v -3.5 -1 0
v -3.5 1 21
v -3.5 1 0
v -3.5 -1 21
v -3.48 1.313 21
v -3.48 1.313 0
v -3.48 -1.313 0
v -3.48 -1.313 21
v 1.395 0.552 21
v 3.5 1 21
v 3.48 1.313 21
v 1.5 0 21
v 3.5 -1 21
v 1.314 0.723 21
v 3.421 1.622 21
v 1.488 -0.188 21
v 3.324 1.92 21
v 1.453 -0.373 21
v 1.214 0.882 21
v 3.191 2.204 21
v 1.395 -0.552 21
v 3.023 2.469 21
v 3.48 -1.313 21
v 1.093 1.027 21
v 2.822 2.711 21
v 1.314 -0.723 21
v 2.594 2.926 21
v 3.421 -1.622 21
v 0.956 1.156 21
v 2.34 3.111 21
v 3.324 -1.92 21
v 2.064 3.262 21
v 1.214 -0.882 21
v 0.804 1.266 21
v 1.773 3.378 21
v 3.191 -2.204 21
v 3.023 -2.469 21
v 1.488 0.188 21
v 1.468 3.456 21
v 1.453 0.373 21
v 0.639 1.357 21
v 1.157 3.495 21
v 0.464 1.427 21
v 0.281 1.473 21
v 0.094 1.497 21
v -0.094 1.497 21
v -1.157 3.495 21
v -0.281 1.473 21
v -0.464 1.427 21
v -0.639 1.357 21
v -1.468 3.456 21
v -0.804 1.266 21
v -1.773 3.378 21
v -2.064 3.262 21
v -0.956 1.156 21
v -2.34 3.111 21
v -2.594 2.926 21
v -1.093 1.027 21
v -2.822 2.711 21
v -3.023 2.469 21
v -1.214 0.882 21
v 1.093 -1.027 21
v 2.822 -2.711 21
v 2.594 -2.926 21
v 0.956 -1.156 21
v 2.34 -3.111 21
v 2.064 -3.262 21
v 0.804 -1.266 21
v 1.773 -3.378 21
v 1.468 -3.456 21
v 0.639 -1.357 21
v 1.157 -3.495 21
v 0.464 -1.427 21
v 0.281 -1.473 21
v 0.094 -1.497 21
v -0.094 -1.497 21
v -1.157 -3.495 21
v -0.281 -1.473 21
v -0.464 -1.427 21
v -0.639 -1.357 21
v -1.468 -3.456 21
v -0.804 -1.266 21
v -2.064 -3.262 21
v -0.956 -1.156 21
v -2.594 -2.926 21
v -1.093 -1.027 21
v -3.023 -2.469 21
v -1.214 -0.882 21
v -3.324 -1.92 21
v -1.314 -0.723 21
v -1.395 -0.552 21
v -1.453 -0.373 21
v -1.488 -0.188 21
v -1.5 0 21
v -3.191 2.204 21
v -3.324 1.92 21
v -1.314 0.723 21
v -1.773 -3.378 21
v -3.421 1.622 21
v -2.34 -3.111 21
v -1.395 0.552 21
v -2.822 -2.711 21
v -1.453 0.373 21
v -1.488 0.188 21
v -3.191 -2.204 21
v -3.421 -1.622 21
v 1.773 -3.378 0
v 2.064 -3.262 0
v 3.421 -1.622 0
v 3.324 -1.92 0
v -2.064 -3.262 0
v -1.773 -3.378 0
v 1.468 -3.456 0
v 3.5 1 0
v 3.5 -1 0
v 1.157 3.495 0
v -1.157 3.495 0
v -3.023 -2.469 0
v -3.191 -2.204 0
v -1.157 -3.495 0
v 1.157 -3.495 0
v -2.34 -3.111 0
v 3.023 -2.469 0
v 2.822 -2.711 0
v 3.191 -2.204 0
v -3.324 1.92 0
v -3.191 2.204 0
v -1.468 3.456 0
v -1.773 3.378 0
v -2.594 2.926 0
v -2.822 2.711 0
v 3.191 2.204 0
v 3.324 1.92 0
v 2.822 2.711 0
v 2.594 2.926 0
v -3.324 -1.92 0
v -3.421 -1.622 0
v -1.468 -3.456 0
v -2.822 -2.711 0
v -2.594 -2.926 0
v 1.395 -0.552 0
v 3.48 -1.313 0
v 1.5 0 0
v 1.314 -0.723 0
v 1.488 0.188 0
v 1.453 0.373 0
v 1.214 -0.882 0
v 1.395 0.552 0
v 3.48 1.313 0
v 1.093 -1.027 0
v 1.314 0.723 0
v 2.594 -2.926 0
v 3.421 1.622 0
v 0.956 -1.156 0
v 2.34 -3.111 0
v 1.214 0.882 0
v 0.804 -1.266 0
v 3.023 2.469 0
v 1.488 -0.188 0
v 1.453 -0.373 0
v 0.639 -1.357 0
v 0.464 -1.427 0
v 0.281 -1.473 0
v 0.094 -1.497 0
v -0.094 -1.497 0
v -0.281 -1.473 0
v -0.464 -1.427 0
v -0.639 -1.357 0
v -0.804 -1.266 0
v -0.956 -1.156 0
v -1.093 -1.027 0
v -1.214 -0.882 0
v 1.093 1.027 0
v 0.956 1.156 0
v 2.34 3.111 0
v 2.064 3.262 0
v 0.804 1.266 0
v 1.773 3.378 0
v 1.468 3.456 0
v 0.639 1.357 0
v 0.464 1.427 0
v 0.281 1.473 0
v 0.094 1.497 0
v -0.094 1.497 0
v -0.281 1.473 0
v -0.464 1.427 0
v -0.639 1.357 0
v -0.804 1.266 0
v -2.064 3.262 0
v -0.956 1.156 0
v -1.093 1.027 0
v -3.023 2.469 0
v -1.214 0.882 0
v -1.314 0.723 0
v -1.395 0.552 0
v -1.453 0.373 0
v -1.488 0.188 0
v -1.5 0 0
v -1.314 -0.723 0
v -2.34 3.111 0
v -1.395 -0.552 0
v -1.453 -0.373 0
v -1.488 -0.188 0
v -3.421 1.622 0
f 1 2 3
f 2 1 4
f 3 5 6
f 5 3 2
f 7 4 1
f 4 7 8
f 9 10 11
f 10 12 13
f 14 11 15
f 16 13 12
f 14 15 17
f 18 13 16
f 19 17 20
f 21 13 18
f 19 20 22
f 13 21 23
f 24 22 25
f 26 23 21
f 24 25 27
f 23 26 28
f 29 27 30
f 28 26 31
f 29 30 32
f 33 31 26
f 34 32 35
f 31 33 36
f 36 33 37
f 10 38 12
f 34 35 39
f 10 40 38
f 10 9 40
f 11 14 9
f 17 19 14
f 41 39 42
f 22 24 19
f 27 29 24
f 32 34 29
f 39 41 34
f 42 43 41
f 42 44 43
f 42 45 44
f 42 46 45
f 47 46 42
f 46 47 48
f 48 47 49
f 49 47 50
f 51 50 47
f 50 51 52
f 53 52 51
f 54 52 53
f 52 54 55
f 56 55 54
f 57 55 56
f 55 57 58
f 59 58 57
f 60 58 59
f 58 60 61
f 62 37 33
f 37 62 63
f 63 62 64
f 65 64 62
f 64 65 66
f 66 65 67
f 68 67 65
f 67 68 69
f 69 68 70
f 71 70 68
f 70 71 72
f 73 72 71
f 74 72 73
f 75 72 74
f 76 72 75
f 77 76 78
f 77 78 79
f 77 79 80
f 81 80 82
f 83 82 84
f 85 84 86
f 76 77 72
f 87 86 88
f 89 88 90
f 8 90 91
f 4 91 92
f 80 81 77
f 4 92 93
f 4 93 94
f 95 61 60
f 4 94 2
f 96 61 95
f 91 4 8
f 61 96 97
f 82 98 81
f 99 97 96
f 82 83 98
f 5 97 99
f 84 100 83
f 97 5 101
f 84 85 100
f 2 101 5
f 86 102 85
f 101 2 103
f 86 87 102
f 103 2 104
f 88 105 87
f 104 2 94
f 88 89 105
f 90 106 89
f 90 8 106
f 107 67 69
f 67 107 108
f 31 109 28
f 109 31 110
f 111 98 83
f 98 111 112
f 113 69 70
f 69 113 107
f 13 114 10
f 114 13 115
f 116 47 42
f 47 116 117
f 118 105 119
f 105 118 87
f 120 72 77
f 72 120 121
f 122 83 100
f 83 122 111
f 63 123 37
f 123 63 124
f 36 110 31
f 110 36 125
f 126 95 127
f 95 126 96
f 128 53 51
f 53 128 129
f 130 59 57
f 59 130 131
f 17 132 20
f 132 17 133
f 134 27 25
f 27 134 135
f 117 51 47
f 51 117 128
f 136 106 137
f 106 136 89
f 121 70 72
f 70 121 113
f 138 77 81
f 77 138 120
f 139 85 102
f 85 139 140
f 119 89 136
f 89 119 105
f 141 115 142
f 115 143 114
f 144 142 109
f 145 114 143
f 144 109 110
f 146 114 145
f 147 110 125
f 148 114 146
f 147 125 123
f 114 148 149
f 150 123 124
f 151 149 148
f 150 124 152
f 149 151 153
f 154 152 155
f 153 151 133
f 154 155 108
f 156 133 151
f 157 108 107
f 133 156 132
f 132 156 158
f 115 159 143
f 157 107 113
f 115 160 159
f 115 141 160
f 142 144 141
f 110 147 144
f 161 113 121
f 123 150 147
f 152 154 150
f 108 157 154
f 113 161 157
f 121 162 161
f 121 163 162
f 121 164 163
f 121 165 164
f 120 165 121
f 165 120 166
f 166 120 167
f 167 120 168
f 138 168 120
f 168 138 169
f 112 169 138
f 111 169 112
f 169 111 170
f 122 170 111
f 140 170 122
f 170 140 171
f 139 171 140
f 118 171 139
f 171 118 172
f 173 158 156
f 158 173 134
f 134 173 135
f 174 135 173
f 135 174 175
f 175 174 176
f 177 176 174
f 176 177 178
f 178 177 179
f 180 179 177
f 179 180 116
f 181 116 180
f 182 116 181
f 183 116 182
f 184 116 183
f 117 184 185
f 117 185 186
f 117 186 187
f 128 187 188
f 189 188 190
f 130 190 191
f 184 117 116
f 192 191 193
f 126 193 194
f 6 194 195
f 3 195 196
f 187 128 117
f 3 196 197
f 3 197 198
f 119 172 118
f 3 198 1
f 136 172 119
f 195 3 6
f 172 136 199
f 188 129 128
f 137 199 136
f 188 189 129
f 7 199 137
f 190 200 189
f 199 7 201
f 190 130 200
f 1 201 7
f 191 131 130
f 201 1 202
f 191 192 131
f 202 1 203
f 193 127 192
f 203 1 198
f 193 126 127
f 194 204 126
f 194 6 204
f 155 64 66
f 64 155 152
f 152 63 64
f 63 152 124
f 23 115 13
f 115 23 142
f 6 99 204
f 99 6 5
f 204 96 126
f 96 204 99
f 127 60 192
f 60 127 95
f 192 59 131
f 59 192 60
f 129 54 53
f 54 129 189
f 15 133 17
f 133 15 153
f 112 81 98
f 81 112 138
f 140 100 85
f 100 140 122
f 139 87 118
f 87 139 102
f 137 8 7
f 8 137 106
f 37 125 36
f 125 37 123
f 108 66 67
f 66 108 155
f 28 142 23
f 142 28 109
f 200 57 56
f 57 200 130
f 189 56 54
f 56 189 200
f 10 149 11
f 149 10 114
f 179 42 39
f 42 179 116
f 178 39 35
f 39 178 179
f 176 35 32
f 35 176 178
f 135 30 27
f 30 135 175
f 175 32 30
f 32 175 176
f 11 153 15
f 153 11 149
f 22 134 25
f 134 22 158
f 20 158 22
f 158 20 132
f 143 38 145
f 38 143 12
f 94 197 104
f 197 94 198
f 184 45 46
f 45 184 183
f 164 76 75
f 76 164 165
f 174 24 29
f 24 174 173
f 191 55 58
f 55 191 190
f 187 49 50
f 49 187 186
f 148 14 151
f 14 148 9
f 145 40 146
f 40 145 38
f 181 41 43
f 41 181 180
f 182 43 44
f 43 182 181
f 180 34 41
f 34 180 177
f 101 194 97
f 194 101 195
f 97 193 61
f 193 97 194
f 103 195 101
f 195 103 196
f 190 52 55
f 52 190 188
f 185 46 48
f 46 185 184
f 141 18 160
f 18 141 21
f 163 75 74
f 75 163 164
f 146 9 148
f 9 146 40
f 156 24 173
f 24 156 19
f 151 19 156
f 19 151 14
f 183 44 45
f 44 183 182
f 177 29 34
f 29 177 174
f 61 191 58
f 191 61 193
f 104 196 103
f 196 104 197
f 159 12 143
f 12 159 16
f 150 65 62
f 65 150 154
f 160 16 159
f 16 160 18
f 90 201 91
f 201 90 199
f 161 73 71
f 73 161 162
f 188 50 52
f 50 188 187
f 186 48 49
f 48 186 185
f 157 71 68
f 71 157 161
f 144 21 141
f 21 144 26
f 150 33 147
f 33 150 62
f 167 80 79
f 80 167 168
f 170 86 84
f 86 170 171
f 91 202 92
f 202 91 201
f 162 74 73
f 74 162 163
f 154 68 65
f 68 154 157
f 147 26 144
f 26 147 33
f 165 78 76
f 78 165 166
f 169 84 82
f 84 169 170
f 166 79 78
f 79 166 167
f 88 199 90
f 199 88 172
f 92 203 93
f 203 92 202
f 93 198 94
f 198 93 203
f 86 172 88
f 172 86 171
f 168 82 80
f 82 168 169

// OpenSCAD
$fn = 50;


difference() {
	union() {
		translate(v = [0, 0, 0]) {
			rotate(a = [0, 0, 0]) {
				hull() {
					translate(v = [-1.0000000000, 1.0000000000, 0]) {
						rotate(a = [0, 0, 0]) {
							translate(v = [0, 0, 0]) {
								rotate(a = [0, 0, 0]) {
									cylinder(h = 21, r = 2.5000000000);
								}
							}
						}
					}
					translate(v = [1.0000000000, 1.0000000000, 0]) {
						rotate(a = [0, 0, 0]) {
							translate(v = [0, 0, 0]) {
								rotate(a = [0, 0, 0]) {
									cylinder(h = 21, r = 2.5000000000);
								}
							}
						}
					}
					translate(v = [-1.0000000000, -1.0000000000, 0]) {
						rotate(a = [0, 0, 0]) {
							translate(v = [0, 0, 0]) {
								rotate(a = [0, 0, 0]) {
									cylinder(h = 21, r = 2.5000000000);
								}
							}
						}
					}
					translate(v = [1.0000000000, -1.0000000000, 0]) {
						rotate(a = [0, 0, 0]) {
							translate(v = [0, 0, 0]) {
								rotate(a = [0, 0, 0]) {
									cylinder(h = 21, r = 2.5000000000);
								}
							}
						}
					}
				}
			}
		}
	}
	union() {
		translate(v = [0.0000000000, 0.0000000000, 0]) {
			rotate(a = [0, 0, 0]) {
				translate(v = [0, 0, -50]) {
					rotate(a = [0, 0, 0]) {
						cylinder(h = 100, r = 1.5000000000);
					}
				}
			}
		}
	}
}
